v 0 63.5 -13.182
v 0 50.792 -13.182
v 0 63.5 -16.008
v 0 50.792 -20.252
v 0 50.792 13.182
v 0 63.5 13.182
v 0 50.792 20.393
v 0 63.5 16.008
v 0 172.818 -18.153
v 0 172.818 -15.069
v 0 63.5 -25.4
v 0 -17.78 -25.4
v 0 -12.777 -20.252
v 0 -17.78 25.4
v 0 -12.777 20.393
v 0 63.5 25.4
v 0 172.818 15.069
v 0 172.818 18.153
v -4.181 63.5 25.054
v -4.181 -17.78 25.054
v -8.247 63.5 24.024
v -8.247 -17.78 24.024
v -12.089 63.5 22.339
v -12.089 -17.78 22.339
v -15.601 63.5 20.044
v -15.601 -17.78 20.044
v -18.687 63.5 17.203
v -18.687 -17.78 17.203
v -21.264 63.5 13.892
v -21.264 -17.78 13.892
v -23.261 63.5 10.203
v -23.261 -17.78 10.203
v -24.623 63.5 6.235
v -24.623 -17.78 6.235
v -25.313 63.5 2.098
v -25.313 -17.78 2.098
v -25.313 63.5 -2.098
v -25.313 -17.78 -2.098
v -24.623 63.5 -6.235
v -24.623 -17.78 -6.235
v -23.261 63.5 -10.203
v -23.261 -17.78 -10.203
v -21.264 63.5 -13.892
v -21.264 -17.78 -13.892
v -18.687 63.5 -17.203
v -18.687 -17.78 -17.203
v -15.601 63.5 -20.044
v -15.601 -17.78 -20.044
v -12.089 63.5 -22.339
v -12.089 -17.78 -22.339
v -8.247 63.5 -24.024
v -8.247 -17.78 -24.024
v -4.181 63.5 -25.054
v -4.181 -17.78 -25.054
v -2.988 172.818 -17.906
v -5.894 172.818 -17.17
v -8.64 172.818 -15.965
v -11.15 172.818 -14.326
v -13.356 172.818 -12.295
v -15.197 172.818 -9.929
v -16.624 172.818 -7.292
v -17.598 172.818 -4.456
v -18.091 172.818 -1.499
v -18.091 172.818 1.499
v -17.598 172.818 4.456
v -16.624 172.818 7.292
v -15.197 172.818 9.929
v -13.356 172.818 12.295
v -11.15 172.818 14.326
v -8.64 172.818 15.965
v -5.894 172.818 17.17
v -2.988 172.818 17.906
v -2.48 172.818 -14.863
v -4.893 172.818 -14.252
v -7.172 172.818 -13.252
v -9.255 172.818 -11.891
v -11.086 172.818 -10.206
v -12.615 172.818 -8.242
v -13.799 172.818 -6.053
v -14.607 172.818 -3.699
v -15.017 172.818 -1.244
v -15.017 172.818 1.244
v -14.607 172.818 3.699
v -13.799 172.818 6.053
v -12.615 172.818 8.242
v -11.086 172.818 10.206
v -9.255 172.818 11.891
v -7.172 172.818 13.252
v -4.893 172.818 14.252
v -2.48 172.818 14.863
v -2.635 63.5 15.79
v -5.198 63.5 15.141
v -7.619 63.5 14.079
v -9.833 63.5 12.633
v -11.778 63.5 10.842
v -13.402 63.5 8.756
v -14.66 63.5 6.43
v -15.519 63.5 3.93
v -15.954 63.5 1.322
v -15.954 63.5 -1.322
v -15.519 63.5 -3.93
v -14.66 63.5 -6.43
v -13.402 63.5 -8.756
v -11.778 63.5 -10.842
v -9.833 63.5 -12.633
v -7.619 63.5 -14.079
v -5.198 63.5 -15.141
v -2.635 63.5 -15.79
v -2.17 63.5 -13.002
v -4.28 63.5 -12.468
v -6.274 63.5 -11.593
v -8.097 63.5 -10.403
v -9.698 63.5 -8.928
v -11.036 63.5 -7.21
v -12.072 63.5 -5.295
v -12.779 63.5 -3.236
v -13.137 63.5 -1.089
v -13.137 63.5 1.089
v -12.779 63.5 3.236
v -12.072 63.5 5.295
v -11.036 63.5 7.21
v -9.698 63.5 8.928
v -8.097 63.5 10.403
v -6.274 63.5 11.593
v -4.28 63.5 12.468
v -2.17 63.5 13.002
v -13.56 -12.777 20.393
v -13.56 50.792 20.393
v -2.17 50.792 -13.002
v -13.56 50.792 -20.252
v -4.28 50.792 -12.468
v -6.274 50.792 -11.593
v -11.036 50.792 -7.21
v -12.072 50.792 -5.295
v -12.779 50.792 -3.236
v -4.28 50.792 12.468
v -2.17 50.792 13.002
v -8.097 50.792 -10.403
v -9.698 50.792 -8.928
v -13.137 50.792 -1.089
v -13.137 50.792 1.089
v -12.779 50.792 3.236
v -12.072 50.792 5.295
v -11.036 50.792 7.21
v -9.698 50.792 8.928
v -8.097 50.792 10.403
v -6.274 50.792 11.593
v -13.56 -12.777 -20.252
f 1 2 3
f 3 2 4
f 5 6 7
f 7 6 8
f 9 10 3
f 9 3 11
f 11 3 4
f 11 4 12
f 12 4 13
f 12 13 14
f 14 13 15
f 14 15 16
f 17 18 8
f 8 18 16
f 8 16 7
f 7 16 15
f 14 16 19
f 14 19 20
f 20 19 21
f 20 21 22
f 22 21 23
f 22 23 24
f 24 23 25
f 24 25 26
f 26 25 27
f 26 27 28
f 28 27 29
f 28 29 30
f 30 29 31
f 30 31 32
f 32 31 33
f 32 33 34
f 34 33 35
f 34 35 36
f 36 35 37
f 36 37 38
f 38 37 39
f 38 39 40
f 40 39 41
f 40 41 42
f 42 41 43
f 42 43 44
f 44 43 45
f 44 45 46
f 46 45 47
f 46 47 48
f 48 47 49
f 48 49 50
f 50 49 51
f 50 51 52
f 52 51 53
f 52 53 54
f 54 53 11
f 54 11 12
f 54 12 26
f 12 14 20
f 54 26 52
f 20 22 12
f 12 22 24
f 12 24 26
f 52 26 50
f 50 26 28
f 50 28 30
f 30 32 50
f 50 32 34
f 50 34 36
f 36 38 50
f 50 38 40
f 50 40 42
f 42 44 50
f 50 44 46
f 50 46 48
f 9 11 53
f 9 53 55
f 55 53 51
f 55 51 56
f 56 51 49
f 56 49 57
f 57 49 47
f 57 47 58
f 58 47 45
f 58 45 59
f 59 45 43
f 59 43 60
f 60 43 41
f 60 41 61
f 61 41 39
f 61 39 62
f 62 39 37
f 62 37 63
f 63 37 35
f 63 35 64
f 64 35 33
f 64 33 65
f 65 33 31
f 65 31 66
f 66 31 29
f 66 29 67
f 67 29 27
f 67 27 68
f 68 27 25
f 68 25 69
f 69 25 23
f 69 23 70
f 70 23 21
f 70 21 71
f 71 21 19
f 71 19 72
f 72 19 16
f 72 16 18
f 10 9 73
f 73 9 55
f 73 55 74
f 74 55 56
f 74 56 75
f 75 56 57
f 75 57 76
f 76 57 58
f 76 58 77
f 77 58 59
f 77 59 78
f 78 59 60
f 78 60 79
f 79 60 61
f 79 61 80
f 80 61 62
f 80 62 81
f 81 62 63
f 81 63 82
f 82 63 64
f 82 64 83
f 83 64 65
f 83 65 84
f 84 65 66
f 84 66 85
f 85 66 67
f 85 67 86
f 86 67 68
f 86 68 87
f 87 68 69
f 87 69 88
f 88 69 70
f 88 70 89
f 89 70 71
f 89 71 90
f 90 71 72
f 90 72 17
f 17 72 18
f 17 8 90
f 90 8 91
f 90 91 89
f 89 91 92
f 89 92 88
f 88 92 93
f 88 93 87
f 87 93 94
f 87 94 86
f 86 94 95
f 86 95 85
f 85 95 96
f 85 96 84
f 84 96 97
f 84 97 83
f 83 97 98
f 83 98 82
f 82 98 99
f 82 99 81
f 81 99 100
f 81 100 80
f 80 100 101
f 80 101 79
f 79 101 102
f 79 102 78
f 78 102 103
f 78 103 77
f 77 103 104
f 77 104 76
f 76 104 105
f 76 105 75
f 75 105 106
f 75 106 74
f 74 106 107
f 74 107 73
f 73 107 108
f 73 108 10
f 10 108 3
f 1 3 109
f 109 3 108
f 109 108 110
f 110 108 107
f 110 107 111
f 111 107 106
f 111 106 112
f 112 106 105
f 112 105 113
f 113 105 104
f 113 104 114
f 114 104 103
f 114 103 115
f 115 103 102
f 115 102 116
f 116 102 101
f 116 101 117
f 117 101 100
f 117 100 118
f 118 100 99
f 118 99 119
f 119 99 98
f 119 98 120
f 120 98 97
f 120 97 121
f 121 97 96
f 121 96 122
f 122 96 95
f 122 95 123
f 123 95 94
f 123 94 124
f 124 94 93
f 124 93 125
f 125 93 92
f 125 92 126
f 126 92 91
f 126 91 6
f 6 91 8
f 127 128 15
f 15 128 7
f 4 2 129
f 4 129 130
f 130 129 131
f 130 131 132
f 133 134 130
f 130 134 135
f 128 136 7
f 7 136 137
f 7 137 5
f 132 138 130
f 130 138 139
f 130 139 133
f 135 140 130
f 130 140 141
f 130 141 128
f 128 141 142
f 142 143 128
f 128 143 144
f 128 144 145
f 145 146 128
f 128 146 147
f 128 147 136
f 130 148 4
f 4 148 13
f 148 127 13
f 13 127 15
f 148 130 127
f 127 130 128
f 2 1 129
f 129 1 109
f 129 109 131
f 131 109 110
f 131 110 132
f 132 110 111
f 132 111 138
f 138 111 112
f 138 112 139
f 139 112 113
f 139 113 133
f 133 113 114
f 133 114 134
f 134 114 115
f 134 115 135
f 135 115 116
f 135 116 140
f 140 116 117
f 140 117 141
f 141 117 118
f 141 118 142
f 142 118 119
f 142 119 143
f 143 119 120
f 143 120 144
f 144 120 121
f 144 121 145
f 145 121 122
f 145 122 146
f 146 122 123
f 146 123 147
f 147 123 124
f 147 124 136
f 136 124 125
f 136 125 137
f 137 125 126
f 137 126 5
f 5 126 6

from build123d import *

# Parameters (mm, degrees)
SKETCH2_R                = 25.4
BOSS_EXTRUDE1_DEPTH      = 63.5
BOSS_EXTRUDE1_DEPTH_BACK = 17.78
SKETCH3_R                = 25.4
BOSS_EXTRUDE2_DEPTH      = 109.317536
BOSS_EXTRUDE2_TAPER      = 3.79256
SKETCH4_R                = 15.06855
CUT_EXTRUDE1_DEPTH       = 109.317536
CUT_EXTRUDE1_DRAFT       = 0.49256
SPLIT6_SURFACE_1_BACK    = 204.688
SPLIT6_SURFACE_1_DEPTH   = 409.376
CUT_EXTRUDE3_DEPTH       = 13.559536
SKETCH8_R                = 13.182228497
CUT_EXTRUDE4_DEPTH       = 13.559536


with BuildPart() as part:
    # Sketch2 → Boss-Extrude1 (new, two sides)
    with BuildSketch(Plane(origin=(0, 0, 0), x_dir=(1, 0, 0), z_dir=(0, 1, 0))) as boss_extrude1_sk:
        with Locations(Location((0, 0, 0), (0, 0, 270))):
            Circle(SKETCH2_R)
    extrude(amount=BOSS_EXTRUDE1_DEPTH)
    extrude(boss_extrude1_sk.sketch, amount=-BOSS_EXTRUDE1_DEPTH_BACK)

    # Sketch3 → Boss-Extrude2 (add)
    with BuildSketch(Plane(origin=(0, 63.5, 0), x_dir=(1, 0, 0), z_dir=(0, 1, 0))):
        with Locations(Location((0, 0, 0), (0, 0, 270))):
            Circle(SKETCH3_R)
    extrude(amount=BOSS_EXTRUDE2_DEPTH, taper=BOSS_EXTRUDE2_TAPER)


with BuildPart() as cut_extrude1_tool:
    # Sketch4 → Cut-Extrude1 (with draft: the straight prism first)
    with BuildSketch(Plane(origin=(0, 172.817536, 0), x_dir=(1, 0, 0), z_dir=(0, 1, 0))):
        Circle(SKETCH4_R)
    extrude(amount=-CUT_EXTRUDE1_DEPTH)
    # Cut-Extrude1: the draft: its side faces are tilted about the plane it starts from
    cut_extrude1_sides = [cut_extrude1_tool.faces().sort_by_distance(p)[0] for p in [
        (-15.06855, 118.158768, 0),
    ]]
    draft(cut_extrude1_sides, Plane(origin=(0, 172.817536, 0), x_dir=(1, 0, 0), z_dir=(0, 1, 0)), CUT_EXTRUDE1_DRAFT)


with BuildPart() as part_1:
    add(part.part)

    # Cut-Extrude1: cut by cut_extrude1_tool
    add(cut_extrude1_tool.part, mode=Mode.SUBTRACT)

    # Split6: cut with a surface, the side behind it stays
    # Split6 surface: a surface, the sketch's curves swept straight by 409.376 mm
    with BuildLine(Plane(origin=(0, 0, 0), x_dir=(1, 0, 0), z_dir=(0, 1, 0)).offset(-SPLIT6_SURFACE_1_BACK), mode=Mode.PRIVATE) as split6_surface_1_path:
        Line((0, 25.4), (0, -25.4))
    split6_surface_1 = Shell.extrude(split6_surface_1_path.wire(), (0 * SPLIT6_SURFACE_1_DEPTH, 1 * SPLIT6_SURFACE_1_DEPTH, 0 * SPLIT6_SURFACE_1_DEPTH))
    split(bisect_by=split6_surface_1, keep=Keep.BOTTOM)

    # Sketch7 → Cut-Extrude3 (cut)
    with BuildSketch(Plane(origin=(0, 0, 0), x_dir=(0, 0, -1), z_dir=(1, 0, 0))):
        Polygon((-20.392899445, 0), (-20.392899445, 50.791761633), (20.25247775, 50.791761633), (20.25247775, -12.77676991), (-20.392899445, -12.77676991), align=None)
    extrude(amount=-CUT_EXTRUDE3_DEPTH, mode=Mode.SUBTRACT)

    # Sketch8 → Cut-Extrude4 (cut)
    with BuildSketch(Plane(origin=(0, 63.5, 0), x_dir=(1, 0, 0), z_dir=(0, 1, 0))):
        Circle(SKETCH8_R)
    extrude(amount=-CUT_EXTRUDE4_DEPTH, mode=Mode.SUBTRACT)


solid = part_1.part
